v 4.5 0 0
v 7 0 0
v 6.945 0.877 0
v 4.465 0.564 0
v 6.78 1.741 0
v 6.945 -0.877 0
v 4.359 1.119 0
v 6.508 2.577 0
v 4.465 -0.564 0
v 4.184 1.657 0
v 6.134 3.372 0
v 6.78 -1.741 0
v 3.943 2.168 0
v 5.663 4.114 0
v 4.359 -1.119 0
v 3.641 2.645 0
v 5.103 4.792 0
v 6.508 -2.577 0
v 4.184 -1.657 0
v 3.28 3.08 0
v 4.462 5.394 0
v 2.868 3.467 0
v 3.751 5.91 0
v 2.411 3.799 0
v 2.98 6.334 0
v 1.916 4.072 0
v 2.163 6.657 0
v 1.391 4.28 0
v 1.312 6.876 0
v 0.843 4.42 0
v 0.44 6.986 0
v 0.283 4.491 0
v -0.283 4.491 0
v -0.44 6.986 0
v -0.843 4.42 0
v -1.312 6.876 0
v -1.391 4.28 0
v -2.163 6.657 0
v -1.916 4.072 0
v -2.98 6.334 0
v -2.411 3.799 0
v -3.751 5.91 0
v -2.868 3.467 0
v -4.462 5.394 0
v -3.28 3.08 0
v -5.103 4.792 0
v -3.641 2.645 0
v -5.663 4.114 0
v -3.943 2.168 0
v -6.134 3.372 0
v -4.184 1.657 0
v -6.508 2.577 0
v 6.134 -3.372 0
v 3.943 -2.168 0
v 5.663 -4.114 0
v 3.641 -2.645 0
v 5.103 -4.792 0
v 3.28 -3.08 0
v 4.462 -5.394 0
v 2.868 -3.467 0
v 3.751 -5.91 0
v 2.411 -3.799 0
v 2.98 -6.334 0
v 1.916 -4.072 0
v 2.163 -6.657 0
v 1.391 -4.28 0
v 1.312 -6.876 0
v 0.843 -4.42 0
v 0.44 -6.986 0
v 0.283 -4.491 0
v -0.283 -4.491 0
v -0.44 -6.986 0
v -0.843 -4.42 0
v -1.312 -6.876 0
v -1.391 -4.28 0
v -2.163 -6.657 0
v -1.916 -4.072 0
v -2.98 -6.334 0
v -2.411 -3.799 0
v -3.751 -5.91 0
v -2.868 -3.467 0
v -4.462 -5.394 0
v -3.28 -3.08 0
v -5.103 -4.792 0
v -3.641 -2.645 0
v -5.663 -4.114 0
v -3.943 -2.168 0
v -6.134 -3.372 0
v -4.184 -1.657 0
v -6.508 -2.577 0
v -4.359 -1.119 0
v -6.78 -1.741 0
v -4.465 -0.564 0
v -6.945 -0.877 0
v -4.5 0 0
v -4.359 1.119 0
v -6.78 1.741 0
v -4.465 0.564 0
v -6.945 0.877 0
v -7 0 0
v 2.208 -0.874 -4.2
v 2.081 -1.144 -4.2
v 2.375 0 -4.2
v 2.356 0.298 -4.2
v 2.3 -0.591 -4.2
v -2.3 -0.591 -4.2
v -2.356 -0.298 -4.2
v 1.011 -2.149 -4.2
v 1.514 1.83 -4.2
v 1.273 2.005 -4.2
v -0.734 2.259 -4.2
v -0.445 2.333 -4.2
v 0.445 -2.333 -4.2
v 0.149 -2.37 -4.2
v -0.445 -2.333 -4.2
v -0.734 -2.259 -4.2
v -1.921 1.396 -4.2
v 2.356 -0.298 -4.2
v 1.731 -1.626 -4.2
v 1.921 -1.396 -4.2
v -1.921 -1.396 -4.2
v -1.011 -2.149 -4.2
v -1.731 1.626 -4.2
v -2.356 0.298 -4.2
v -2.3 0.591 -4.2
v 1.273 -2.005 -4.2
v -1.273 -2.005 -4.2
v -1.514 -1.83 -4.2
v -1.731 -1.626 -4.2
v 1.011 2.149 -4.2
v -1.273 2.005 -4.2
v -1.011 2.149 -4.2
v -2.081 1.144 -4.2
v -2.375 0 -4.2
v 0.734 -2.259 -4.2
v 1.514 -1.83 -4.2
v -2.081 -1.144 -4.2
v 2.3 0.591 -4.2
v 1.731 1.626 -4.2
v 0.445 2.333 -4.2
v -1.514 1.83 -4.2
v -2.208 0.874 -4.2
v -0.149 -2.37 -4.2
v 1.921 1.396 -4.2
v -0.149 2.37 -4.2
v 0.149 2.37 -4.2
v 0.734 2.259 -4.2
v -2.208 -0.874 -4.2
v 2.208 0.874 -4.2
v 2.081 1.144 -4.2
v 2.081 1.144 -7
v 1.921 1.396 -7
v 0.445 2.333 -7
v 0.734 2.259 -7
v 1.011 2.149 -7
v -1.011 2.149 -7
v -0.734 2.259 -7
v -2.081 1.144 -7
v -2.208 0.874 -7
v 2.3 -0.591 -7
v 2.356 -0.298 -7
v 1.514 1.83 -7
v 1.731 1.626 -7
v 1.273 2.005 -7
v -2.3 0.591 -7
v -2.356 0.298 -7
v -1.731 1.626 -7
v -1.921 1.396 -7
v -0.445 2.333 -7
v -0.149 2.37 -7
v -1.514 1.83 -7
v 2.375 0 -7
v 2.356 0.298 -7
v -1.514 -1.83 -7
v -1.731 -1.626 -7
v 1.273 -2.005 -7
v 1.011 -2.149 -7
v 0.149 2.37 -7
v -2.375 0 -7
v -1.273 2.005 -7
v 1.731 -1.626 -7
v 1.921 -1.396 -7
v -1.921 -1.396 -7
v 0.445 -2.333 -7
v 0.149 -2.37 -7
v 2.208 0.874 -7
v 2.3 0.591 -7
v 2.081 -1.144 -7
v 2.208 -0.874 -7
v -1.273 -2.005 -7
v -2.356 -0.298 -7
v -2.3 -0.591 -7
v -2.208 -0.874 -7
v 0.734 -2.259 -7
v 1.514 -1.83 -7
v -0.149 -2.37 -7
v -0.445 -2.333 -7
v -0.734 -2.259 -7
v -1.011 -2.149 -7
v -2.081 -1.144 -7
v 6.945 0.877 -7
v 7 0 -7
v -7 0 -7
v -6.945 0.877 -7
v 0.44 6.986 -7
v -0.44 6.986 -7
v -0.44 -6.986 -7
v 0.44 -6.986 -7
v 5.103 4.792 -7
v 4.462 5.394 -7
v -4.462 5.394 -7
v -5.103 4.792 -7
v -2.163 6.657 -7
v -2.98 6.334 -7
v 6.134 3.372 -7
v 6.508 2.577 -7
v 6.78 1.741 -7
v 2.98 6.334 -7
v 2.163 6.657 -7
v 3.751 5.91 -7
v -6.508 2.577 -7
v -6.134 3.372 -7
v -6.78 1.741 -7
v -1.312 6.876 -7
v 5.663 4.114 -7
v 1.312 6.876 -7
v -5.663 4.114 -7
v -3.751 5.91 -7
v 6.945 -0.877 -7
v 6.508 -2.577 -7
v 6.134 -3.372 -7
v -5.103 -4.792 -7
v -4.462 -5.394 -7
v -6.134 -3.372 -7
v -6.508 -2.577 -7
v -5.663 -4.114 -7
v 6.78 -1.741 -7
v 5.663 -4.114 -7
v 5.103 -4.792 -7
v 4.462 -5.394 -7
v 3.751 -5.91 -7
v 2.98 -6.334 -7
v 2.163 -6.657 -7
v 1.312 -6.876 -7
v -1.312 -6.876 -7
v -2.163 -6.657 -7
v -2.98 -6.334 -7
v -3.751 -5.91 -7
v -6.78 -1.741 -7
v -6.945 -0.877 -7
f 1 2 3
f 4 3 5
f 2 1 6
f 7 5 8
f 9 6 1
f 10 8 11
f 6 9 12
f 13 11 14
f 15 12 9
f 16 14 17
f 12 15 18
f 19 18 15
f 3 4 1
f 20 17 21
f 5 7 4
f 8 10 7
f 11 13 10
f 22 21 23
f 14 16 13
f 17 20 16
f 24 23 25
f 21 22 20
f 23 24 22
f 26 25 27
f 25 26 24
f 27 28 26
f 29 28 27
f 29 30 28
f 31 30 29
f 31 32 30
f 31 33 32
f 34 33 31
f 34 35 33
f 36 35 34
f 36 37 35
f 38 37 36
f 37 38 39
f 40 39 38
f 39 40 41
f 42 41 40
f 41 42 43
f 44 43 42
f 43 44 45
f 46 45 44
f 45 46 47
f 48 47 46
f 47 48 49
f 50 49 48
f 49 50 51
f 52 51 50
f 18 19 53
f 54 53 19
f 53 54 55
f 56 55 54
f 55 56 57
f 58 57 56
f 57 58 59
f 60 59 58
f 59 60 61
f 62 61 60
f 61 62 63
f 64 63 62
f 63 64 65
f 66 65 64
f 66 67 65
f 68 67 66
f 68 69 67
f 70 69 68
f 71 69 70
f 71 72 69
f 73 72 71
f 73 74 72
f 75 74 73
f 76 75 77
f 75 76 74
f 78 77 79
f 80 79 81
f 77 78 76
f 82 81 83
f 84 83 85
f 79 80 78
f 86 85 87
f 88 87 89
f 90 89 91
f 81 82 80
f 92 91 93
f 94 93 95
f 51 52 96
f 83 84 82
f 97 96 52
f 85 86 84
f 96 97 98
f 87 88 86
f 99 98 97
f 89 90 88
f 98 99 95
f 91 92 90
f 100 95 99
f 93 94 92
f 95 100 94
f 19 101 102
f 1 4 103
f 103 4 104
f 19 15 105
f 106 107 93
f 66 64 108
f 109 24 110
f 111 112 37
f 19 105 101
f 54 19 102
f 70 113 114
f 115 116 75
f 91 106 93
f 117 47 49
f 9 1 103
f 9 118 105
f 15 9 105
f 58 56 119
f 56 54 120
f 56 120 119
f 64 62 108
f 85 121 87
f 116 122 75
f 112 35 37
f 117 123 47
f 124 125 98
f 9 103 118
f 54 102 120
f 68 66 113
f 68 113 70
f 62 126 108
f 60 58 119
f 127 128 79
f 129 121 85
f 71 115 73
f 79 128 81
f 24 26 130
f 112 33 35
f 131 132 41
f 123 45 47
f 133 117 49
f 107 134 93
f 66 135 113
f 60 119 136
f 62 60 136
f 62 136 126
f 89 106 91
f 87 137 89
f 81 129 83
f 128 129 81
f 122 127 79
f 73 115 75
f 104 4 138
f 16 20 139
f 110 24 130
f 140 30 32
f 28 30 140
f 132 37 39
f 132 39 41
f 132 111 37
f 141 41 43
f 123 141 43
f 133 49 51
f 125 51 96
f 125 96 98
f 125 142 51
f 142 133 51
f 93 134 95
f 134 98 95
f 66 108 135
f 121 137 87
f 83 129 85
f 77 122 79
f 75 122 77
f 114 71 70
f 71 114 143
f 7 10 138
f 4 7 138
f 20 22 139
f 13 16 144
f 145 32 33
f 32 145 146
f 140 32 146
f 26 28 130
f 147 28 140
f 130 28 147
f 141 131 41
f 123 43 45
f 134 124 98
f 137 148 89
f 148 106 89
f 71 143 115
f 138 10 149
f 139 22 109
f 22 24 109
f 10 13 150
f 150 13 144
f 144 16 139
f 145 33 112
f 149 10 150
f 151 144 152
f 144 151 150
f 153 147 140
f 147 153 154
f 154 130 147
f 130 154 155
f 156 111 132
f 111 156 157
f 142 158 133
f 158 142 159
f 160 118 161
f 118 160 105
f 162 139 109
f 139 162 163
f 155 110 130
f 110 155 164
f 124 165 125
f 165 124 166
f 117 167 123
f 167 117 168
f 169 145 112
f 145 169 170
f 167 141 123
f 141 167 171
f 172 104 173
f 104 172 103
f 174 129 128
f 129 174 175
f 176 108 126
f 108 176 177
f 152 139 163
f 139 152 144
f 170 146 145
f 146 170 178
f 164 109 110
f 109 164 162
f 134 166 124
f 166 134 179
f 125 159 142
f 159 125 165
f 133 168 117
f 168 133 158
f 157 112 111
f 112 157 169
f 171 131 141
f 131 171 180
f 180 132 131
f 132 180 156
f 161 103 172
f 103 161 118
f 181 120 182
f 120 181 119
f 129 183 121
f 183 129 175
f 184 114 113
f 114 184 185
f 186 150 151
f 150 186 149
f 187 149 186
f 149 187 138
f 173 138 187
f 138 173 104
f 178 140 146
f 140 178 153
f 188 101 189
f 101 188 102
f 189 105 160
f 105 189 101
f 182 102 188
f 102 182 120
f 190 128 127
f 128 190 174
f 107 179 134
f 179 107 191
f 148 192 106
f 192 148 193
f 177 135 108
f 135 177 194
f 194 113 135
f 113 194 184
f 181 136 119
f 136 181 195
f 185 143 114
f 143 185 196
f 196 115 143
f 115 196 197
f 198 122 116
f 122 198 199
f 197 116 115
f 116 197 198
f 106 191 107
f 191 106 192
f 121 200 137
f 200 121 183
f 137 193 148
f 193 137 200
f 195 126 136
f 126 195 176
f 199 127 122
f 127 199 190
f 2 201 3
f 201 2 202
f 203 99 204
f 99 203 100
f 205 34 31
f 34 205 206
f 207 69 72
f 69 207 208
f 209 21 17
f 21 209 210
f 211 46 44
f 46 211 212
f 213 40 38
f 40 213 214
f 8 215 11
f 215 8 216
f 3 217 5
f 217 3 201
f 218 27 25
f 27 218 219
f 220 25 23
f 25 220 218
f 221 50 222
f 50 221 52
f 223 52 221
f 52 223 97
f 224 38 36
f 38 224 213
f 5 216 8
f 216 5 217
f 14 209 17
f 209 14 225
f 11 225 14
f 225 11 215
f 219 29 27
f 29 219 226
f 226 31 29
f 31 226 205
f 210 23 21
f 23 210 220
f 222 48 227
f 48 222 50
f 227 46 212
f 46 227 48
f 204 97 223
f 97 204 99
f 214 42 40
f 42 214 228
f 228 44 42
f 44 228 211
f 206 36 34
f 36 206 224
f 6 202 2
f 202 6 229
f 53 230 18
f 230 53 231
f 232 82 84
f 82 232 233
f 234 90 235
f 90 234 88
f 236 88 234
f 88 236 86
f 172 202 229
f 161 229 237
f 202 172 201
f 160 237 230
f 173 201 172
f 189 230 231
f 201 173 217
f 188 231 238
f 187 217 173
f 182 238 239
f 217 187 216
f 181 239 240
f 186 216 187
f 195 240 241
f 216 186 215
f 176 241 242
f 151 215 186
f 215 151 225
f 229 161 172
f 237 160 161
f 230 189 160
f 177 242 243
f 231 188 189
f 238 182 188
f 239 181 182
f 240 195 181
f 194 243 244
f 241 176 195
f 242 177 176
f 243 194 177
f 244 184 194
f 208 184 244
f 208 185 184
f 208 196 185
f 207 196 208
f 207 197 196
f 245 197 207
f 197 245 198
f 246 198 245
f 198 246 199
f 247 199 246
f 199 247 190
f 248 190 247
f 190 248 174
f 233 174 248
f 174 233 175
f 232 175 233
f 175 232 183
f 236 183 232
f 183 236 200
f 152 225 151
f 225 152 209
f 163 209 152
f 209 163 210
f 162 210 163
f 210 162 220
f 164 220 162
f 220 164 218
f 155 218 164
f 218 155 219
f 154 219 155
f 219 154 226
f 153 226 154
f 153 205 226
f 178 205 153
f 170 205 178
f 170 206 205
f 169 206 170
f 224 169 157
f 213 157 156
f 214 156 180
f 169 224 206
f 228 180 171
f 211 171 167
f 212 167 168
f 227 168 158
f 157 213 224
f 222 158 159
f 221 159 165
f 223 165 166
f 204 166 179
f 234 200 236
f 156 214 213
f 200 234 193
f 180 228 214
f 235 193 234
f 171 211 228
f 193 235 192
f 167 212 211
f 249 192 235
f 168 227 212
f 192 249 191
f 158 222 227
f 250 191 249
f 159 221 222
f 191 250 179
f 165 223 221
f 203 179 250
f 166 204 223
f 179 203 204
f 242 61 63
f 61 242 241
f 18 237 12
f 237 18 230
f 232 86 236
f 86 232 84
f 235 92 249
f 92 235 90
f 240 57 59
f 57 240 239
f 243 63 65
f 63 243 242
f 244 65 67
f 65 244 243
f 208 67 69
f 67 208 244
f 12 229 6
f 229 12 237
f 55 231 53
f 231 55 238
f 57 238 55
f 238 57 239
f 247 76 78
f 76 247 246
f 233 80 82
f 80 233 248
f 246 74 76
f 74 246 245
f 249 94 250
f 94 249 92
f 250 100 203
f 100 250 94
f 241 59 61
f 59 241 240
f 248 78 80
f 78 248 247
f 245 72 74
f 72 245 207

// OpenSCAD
$fn = 50;


difference() {
	union() {
		translate(v = [0, 0, -7.0000000000]) {
			cylinder(h = 7, r = 7.0000000000);
		}
	}
	union() {
		translate(v = [0, 0, 0]) {
			rotate(a = [0, 0, 0]) {
				difference() {
					union() {
						#translate(v = [0, 0, -9.0000000000]) {
							cylinder(h = 9, r = 2.2500000000);
						}
						#translate(v = [0, 0, -4.2000000000]) {
							cylinder(h = 4.2000000000, r1 = 2.3750000000, r2 = 4.5000000000);
						}
						#translate(v = [0, 0, -9.0000000000]) {
							cylinder(h = 9, r = 2.3750000000);
						}
						#translate(v = [0, 0, -9.0000000000]) {
							cylinder(h = 9, r = 2.2500000000);
						}
					}
					union();
				}
			}
		}
	}
}
